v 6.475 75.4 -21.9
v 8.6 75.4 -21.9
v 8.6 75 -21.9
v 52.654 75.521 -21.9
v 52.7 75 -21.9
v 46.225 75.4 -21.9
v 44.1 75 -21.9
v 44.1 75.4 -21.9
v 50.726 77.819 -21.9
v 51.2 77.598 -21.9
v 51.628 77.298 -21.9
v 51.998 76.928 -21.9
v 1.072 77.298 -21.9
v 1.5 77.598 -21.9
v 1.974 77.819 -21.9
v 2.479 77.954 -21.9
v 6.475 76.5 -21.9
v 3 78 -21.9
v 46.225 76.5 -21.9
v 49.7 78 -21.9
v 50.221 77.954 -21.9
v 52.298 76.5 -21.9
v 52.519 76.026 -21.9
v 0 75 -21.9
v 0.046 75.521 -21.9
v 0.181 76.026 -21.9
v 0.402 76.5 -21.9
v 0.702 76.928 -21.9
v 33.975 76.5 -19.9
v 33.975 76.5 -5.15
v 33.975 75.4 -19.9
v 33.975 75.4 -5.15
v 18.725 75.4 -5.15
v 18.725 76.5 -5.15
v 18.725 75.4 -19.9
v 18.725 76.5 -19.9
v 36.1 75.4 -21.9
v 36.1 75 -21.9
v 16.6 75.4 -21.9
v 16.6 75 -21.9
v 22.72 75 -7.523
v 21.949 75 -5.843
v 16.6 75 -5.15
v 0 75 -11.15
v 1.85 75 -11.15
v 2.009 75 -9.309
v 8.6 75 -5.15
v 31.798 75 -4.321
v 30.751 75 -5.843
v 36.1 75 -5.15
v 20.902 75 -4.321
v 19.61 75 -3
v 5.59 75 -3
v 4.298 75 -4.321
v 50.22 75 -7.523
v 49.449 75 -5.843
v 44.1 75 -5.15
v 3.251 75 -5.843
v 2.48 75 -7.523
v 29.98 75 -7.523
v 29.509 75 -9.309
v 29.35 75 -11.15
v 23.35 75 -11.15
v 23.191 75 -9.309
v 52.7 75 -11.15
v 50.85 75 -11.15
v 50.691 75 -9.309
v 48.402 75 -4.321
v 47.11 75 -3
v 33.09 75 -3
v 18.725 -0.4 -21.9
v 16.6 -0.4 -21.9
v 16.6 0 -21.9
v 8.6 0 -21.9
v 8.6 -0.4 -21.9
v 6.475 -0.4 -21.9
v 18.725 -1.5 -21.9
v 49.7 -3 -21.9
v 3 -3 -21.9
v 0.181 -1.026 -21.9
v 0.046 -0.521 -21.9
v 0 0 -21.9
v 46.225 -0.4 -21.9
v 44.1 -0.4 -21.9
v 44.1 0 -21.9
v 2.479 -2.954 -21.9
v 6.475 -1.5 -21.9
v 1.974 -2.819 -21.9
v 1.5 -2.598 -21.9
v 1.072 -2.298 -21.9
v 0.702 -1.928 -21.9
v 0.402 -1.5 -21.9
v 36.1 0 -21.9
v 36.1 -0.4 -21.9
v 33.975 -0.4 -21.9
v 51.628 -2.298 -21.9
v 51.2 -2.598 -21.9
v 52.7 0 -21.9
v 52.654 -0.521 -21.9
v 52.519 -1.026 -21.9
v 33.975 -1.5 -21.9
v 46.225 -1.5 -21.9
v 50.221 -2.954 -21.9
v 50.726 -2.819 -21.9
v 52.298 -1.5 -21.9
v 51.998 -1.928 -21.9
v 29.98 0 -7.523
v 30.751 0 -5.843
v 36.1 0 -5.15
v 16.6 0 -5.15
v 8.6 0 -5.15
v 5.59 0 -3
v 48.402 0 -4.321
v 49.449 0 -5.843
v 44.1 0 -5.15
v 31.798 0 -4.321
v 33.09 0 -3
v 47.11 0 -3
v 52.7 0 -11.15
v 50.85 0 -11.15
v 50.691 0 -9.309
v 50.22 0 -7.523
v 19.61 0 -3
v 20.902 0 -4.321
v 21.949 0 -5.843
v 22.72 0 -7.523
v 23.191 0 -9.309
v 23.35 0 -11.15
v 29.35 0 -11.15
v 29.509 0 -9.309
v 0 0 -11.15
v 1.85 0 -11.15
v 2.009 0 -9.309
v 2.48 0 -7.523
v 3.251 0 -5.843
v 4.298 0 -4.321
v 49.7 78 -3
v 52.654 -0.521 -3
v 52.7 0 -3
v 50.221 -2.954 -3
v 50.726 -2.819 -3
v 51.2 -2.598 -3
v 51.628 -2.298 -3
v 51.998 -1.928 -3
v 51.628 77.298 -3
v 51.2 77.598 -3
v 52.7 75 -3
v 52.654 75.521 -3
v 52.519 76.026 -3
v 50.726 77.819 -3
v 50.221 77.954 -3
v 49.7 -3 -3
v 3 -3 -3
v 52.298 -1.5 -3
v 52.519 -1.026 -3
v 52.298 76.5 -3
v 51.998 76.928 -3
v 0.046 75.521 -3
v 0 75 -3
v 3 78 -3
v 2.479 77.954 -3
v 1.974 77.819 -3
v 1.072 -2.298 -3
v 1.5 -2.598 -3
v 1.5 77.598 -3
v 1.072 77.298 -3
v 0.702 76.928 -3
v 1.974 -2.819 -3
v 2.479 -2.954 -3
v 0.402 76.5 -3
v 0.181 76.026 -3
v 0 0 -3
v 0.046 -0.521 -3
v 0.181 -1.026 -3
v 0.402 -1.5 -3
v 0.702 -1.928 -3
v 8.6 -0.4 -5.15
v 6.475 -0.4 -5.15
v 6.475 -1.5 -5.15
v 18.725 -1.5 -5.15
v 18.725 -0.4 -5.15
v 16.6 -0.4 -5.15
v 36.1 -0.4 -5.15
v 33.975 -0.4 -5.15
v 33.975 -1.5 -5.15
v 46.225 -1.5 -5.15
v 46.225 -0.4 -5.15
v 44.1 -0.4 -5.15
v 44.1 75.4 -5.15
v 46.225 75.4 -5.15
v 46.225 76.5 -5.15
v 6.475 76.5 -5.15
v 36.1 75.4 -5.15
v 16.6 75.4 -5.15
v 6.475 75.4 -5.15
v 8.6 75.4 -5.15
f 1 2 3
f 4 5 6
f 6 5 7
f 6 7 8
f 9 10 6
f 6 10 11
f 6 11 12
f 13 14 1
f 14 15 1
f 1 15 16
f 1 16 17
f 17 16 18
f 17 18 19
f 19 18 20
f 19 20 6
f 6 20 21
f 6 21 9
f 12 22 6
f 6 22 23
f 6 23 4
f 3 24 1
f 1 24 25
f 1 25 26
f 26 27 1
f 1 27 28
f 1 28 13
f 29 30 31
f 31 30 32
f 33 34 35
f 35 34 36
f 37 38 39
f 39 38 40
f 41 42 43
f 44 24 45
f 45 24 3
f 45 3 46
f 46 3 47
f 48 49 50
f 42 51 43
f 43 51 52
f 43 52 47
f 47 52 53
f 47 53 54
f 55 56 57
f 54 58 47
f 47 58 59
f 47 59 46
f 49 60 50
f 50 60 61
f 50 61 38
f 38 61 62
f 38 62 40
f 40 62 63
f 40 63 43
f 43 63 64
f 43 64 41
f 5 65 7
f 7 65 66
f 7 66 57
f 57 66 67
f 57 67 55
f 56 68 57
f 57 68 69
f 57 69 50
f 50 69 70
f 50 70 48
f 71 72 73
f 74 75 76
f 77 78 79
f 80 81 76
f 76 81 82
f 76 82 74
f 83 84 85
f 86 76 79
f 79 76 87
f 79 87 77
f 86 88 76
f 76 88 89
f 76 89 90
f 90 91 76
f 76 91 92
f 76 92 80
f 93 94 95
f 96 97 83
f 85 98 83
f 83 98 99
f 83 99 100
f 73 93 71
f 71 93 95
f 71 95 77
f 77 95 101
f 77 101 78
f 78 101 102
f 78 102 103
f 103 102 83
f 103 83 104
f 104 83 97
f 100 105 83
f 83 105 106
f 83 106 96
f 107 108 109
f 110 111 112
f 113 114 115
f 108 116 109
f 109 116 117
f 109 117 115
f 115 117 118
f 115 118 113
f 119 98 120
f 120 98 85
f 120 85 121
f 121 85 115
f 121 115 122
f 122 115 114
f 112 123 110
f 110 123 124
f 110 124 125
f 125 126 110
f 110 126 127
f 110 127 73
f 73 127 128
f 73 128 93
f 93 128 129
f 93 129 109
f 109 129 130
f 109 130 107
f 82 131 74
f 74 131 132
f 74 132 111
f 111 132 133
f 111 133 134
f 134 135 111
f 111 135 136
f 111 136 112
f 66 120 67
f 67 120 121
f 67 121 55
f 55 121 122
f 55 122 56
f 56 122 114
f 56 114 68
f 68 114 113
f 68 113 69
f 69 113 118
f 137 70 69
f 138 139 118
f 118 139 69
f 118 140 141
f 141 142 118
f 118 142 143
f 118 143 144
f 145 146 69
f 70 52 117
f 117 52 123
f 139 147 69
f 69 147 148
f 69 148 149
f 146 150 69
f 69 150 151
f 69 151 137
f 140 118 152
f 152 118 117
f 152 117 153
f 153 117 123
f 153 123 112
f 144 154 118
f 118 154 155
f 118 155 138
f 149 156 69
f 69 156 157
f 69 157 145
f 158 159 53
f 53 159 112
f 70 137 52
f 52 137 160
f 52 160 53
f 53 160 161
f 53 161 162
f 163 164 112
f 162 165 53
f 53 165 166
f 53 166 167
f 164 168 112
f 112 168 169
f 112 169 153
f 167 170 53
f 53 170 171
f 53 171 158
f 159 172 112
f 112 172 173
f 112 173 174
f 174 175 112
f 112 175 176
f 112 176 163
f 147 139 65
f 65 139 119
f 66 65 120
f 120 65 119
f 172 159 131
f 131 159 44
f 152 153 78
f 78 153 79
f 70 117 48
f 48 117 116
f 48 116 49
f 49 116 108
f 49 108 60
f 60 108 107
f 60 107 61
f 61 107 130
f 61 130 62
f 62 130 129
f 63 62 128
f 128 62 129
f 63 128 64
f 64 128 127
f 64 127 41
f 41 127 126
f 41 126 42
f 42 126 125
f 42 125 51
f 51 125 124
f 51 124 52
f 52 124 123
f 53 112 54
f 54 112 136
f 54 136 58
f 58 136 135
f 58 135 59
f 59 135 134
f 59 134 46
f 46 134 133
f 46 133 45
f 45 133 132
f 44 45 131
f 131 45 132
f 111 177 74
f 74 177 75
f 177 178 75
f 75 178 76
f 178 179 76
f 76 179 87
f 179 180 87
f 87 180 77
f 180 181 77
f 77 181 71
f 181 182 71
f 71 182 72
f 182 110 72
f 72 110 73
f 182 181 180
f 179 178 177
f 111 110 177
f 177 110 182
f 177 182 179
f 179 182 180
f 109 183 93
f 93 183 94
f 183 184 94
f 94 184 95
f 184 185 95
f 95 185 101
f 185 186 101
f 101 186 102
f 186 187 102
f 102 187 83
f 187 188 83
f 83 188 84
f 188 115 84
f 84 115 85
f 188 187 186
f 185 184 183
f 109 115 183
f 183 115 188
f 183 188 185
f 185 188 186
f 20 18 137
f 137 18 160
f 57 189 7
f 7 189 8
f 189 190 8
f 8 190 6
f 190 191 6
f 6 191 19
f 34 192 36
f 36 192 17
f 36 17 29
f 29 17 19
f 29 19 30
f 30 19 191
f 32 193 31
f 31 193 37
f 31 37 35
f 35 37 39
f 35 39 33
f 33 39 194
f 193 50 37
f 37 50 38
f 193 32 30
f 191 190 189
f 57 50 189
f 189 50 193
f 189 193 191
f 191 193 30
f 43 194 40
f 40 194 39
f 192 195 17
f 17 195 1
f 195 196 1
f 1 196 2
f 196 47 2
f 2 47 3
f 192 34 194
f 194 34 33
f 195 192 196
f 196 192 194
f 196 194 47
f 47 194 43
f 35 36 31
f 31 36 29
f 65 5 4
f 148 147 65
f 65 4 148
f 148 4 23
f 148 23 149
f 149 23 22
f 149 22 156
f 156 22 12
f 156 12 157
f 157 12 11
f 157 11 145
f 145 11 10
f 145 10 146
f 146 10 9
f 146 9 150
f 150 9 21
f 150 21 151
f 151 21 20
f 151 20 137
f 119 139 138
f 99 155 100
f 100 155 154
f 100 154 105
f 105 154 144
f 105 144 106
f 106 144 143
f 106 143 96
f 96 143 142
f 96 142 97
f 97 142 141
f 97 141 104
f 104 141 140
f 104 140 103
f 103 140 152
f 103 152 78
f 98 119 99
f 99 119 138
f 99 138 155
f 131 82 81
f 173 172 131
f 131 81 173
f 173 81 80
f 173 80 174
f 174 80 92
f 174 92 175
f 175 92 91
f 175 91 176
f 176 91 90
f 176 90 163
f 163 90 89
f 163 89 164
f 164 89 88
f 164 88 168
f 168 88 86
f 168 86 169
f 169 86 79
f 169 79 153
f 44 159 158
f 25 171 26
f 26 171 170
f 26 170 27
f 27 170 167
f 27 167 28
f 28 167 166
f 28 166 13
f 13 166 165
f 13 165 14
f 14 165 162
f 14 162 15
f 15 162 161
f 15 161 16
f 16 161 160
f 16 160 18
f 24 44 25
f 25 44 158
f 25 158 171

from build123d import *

# Parameters (mm, degrees)
BOSS_EXTRUDE1_DEPTH  = 75
SKETCH1_3_W          = 52.7
SKETCH1_3_H          = 18.9
BOSS_EXTRUDE2_DEPTH  = 3
CUT_EXTRUDE1_DEPTH   = 16.75
MIRROR3_COPY_1_DEPTH = 16.75
SKETCH5_W            = 15.25
SKETCH5_H            = 1.1
CUT_EXTRUDE2_DEPTH   = 2
FILLET1_R            = 3


with BuildPart() as part:
    # Sketch1 → Boss-Extrude1 (new body)
    with BuildSketch(Plane(origin=(0, 0, 0), x_dir=(1, 0, 0), z_dir=(0, 1, 0))):
        with BuildLine():
            Line((47.109992867, 3), (52.7, 3))
            Line((52.7, 3), (52.7, 11.15))
            Line((52.7, 11.15), (50.85, 11.15))
            ThreePointArc((50.85, 11.15), (49.870361389, 6.666414567), (47.109992867, 3))
        make_face()
        with BuildLine():
            Line((26.35, 11.15), (26.35, 3))
            Line((26.35, 3), (33.090007133, 3))
            ThreePointArc((33.090007133, 3), (30.329638611, 6.666414567), (29.35, 11.15))
            Line((29.35, 11.15), (26.35, 11.15))
        make_face()
        with BuildLine():
            Line((19.609992867, 3), (26.35, 3))
            Line((26.35, 3), (26.35, 11.15))
            Line((26.35, 11.15), (23.35, 11.15))
            ThreePointArc((23.35, 11.15), (22.370361389, 6.666414567), (19.609992867, 3))
        make_face()
        with BuildLine():
            Line((0, 3), (5.590007133, 3))
            ThreePointArc((5.590007133, 3), (2.829638611, 6.666414567), (1.85, 11.15))
            Line((1.85, 11.15), (0, 11.15))
            Line((0, 11.15), (0, 3))
        make_face()
    extrude(amount=BOSS_EXTRUDE1_DEPTH)

    # Sketch1<3> → Boss-Extrude2 (add)
    with BuildSketch(Plane(origin=(0, 0, 0), x_dir=(1, 0, 0), z_dir=(0, 1, 0))):
        with Locations((26.35, 12.45)):
            Rectangle(SKETCH1_3_W, SKETCH1_3_H)
    boss_extrude2 = extrude(amount=-BOSS_EXTRUDE2_DEPTH)

    # Sketch4 → Cut-Extrude1 (cut)
    with BuildSketch(Plane(origin=(0, 0, -21.9), x_dir=(-1, 0, 0), z_dir=(0, 0, -1))):
        Polygon((-18.725, -1.5), (-6.475, -1.5), (-6.475, -0.4), (-8.6, -0.4), (-8.6, 0), (-16.6, 0), (-16.6, -0.4), (-18.725, -0.4), align=None)
    cut_extrude1 = extrude(amount=-CUT_EXTRUDE1_DEPTH, mode=Mode.SUBTRACT)

    # Mirror2: Cut-Extrude1 across plane
    add(cut_extrude1.mirror(Plane(origin=(26.35, 0, 0), x_dir=(0, 0, 1), z_dir=(1, 0, 0))), mode=Mode.SUBTRACT)

    # Mirror3: Boss-Extrude2, Cut-Extrude1 across plane
    add(boss_extrude2.mirror(Plane.ZX.offset(37.5)))
    add(cut_extrude1.mirror(Plane.ZX.offset(37.5)), mode=Mode.SUBTRACT)

    # Mirror3 copy 1 sketch → Mirror3 copy 1 (cut)
    with BuildSketch(Plane(origin=(52.7, 75, -21.9), x_dir=(1, 0, 0), z_dir=(0, 0, -1))):
        Polygon((-18.725, -1.5), (-6.475, -1.5), (-6.475, -0.4), (-8.6, -0.4), (-8.6, 0), (-16.6, 0), (-16.6, -0.4), (-18.725, -0.4), align=None)
    extrude(amount=-MIRROR3_COPY_1_DEPTH, mode=Mode.SUBTRACT)

    # Sketch5 → Cut-Extrude2 (cut)
    with BuildSketch(Plane(origin=(0, 0, -21.9), x_dir=(-1, 0, 0), z_dir=(0, 0, -1))):
        with Locations((-26.35, 75.95)):
            Rectangle(SKETCH5_W, SKETCH5_H)
    extrude(amount=-CUT_EXTRUDE2_DEPTH, mode=Mode.SUBTRACT)

    # Fillet1
    fillet1_edges = [part.edges().sort_by_distance(p)[0] for p in [
        (0, 78, -12.45),
        (52.7, 78, -12.45),
        (52.7, -3, -12.45),
        (0, -3, -12.45),
    ]]
    fillet(fillet1_edges, radius=FILLET1_R - 0.0001)  # a hair under: the kernel refuses the full size


solid = part.part
